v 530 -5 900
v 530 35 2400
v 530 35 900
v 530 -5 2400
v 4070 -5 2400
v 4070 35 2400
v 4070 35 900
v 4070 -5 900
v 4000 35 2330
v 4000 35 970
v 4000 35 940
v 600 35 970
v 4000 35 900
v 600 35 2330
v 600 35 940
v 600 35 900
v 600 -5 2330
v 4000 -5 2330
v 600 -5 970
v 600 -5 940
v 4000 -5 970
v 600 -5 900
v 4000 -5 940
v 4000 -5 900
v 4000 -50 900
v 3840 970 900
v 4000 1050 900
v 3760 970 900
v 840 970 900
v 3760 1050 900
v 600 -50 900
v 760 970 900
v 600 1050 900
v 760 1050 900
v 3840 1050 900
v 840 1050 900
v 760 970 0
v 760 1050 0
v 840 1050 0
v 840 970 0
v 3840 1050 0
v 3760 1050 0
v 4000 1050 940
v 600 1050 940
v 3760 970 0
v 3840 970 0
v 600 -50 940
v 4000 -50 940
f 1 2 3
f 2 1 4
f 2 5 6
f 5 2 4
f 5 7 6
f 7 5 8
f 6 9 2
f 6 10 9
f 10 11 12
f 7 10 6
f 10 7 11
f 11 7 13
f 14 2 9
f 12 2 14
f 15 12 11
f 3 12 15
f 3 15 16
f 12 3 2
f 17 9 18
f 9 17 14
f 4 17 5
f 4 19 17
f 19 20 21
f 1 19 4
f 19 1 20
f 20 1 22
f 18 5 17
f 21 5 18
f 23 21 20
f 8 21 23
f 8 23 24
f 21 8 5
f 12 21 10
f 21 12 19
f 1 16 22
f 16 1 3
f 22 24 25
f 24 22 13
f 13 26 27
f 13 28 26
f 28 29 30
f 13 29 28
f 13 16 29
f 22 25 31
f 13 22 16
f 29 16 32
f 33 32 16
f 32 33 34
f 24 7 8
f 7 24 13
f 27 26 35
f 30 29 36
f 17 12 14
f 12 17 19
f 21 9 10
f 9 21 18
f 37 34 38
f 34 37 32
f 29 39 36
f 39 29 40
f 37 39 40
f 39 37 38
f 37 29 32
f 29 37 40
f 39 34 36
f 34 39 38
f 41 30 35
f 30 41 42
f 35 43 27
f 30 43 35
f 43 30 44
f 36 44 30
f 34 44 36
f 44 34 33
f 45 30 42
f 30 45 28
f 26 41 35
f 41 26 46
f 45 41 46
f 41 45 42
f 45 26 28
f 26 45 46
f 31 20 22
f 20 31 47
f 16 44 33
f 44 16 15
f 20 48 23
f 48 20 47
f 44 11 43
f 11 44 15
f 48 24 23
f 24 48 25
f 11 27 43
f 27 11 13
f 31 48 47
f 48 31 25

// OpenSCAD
// tea_shop_counter_assemble.scad — GROUP 4 COUNTER: ASSEMBLED PREVIEW
// Press F5 in OpenSCAD to preview all counter/window pieces in color.
include <tea_shop_counter_modules.scad>;
assemble();
